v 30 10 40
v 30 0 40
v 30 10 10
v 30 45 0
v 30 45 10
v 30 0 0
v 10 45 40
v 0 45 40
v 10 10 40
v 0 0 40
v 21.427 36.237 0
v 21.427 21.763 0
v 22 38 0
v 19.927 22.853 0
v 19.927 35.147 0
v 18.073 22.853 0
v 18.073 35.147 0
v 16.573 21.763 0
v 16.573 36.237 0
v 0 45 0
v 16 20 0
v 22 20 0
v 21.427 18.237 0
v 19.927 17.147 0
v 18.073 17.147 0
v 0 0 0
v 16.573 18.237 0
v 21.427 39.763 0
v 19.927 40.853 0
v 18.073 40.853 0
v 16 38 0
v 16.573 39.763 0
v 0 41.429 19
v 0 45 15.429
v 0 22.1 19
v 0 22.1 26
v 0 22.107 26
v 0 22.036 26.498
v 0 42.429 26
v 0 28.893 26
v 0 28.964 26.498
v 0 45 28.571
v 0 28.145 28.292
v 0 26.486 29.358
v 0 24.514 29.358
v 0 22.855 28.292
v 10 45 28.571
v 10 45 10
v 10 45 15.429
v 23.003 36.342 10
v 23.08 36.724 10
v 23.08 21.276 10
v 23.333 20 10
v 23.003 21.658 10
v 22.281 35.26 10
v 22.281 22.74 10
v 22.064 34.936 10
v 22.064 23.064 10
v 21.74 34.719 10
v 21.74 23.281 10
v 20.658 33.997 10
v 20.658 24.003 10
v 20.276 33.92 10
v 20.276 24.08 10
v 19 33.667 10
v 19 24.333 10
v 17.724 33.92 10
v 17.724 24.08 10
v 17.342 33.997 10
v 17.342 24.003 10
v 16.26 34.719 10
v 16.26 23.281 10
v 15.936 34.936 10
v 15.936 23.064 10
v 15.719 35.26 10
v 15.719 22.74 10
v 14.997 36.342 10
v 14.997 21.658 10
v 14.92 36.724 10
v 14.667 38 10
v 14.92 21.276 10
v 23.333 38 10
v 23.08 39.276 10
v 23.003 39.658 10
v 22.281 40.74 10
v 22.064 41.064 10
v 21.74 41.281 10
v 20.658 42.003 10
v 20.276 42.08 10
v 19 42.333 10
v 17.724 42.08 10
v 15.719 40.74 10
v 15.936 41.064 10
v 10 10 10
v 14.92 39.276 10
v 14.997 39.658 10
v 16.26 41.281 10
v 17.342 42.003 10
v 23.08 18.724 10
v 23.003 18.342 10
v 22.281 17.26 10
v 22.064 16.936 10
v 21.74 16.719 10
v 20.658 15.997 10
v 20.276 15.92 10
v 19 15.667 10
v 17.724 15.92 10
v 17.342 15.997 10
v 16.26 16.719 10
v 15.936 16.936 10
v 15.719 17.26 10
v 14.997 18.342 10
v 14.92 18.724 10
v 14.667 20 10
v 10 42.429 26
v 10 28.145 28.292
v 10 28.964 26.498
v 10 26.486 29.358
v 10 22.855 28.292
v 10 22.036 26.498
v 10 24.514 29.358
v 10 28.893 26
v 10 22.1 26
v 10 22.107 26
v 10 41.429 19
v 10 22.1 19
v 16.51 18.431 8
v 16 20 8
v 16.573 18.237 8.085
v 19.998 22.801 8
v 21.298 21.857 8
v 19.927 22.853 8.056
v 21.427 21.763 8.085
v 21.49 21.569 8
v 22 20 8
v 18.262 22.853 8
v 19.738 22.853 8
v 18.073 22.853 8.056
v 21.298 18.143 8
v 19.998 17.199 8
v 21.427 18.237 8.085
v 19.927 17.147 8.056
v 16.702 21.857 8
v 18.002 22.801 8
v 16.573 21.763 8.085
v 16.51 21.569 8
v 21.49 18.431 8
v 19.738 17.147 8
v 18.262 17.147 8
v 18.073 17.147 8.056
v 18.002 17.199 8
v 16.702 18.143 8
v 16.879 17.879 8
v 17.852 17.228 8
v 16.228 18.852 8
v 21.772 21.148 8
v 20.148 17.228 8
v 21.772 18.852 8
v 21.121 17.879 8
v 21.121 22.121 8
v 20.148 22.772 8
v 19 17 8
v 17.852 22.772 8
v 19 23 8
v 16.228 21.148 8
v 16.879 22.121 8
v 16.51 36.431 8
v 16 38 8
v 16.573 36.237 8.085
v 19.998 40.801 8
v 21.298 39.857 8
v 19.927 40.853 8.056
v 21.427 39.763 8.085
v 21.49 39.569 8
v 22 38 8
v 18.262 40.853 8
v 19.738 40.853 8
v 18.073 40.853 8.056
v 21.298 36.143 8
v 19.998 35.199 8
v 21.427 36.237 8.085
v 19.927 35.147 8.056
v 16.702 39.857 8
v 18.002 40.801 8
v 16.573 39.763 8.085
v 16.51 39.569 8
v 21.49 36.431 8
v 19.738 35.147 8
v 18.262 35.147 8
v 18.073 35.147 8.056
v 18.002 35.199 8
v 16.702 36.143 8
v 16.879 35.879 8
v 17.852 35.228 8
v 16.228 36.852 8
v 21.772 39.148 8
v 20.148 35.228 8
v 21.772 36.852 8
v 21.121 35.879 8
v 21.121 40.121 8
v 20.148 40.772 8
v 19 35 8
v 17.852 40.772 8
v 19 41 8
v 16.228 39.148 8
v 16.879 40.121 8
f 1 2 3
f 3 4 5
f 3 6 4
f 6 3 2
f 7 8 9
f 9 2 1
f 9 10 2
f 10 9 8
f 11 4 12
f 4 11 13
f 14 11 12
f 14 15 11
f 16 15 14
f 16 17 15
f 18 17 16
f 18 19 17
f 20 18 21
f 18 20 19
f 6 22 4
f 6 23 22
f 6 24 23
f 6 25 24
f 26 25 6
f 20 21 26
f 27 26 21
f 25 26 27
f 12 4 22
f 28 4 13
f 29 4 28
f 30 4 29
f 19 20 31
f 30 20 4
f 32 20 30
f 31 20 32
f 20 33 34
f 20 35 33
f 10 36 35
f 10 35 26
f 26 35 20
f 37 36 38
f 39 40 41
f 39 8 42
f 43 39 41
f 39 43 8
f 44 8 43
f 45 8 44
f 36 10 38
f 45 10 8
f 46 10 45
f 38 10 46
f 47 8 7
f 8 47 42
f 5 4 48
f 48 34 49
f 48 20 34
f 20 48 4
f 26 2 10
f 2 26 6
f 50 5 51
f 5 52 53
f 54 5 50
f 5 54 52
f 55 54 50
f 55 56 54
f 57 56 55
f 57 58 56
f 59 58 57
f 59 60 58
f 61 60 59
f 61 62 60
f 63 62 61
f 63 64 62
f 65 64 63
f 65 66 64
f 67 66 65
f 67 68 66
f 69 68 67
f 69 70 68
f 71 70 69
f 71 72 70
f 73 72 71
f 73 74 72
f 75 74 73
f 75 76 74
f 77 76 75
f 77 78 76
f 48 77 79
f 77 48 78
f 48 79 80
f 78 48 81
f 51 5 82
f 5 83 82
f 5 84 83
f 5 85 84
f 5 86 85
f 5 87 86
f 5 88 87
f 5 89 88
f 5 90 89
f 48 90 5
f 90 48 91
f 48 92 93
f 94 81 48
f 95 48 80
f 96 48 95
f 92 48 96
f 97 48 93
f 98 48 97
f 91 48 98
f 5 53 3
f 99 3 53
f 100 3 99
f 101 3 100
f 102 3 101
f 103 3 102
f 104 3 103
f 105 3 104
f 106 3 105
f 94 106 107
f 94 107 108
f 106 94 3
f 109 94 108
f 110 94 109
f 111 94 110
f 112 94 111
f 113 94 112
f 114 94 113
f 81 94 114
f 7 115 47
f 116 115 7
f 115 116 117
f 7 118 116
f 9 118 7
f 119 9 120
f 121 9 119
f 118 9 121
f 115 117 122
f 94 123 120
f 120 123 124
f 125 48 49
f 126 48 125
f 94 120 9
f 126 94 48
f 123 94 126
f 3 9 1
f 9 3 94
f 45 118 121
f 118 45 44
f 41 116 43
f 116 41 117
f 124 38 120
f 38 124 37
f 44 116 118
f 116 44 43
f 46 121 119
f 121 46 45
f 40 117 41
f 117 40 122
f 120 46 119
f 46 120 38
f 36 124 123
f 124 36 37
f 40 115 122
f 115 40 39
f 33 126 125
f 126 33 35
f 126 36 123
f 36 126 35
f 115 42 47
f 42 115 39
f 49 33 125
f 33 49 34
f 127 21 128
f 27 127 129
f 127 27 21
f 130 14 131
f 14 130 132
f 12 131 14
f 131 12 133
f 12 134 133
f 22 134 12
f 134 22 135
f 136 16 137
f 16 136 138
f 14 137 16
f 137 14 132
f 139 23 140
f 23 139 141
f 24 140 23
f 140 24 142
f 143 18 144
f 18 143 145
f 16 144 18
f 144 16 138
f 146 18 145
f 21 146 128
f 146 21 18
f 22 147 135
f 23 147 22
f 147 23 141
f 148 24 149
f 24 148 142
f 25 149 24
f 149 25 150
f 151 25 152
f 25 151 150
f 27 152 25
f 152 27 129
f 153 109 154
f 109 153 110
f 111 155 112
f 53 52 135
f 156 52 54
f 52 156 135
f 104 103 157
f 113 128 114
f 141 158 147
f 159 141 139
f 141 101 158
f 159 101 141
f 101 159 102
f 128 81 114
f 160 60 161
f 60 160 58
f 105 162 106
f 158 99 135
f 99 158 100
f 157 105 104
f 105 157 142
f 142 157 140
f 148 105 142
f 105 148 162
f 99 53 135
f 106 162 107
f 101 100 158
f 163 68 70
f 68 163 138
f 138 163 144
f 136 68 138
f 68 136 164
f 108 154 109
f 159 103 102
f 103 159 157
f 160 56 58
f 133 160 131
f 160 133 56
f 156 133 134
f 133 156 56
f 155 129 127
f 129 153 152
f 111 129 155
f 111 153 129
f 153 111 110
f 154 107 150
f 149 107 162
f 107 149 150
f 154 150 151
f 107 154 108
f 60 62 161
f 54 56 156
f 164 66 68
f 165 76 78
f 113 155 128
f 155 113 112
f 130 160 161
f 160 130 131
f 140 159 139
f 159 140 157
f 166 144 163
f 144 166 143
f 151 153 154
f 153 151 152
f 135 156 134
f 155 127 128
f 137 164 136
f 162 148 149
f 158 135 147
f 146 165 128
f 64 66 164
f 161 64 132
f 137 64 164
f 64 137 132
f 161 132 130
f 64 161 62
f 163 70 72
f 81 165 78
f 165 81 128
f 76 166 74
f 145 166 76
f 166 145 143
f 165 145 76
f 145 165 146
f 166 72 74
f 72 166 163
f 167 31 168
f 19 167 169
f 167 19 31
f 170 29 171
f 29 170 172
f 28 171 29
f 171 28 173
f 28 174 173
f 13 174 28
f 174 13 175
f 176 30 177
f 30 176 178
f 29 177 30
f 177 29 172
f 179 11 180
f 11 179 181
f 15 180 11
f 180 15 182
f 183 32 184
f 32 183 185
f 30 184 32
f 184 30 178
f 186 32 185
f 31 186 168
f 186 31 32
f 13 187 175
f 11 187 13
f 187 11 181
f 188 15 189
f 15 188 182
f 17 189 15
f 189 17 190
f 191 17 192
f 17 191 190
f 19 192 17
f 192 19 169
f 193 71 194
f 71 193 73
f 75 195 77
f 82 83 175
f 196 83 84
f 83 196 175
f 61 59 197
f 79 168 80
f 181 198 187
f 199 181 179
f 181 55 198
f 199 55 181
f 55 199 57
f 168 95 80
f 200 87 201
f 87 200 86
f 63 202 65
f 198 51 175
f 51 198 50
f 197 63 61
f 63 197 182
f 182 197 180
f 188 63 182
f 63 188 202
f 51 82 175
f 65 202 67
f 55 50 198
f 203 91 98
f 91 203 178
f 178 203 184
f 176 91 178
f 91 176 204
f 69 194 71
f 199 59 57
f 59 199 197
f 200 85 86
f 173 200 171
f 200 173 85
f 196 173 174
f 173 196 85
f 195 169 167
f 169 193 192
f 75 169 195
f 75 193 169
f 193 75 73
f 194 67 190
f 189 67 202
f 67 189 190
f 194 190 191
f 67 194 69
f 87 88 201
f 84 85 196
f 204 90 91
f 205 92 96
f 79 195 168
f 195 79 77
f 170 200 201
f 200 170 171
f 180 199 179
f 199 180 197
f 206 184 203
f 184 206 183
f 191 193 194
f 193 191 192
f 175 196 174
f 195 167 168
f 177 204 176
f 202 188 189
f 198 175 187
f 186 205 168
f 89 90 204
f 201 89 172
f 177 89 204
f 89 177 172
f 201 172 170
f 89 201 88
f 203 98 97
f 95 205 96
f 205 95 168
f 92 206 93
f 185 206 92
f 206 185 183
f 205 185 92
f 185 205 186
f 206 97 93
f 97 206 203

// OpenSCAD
holeDia = 7.0;

module base(h, b, t)  {
    difference(){
        cube([h,b,t]);
        translate([10,10,10])cube([h,b+5,t]);
    }
}

difference(){
    base(30,45,40);
 
    translate([-10,22.5+3,23+3]){
      rotate([0,90,0])cylinder(h=30,d=holeDia);
      translate([11,14.1,-3.5])cube([20,35,holeDia], true);
      translate([11,20.0,-4])rotate([45,0,0])cube([20,10,10], true);
    }
   
    translate([19,20,-4])senkloch();
    translate([19,38,-4])senkloch();
    
}


module senkloch() {
        cylinder(h=30,d=6);
        translate([0,0,12]) cylinder(h=3,d1=6, d2 =10);
       }
